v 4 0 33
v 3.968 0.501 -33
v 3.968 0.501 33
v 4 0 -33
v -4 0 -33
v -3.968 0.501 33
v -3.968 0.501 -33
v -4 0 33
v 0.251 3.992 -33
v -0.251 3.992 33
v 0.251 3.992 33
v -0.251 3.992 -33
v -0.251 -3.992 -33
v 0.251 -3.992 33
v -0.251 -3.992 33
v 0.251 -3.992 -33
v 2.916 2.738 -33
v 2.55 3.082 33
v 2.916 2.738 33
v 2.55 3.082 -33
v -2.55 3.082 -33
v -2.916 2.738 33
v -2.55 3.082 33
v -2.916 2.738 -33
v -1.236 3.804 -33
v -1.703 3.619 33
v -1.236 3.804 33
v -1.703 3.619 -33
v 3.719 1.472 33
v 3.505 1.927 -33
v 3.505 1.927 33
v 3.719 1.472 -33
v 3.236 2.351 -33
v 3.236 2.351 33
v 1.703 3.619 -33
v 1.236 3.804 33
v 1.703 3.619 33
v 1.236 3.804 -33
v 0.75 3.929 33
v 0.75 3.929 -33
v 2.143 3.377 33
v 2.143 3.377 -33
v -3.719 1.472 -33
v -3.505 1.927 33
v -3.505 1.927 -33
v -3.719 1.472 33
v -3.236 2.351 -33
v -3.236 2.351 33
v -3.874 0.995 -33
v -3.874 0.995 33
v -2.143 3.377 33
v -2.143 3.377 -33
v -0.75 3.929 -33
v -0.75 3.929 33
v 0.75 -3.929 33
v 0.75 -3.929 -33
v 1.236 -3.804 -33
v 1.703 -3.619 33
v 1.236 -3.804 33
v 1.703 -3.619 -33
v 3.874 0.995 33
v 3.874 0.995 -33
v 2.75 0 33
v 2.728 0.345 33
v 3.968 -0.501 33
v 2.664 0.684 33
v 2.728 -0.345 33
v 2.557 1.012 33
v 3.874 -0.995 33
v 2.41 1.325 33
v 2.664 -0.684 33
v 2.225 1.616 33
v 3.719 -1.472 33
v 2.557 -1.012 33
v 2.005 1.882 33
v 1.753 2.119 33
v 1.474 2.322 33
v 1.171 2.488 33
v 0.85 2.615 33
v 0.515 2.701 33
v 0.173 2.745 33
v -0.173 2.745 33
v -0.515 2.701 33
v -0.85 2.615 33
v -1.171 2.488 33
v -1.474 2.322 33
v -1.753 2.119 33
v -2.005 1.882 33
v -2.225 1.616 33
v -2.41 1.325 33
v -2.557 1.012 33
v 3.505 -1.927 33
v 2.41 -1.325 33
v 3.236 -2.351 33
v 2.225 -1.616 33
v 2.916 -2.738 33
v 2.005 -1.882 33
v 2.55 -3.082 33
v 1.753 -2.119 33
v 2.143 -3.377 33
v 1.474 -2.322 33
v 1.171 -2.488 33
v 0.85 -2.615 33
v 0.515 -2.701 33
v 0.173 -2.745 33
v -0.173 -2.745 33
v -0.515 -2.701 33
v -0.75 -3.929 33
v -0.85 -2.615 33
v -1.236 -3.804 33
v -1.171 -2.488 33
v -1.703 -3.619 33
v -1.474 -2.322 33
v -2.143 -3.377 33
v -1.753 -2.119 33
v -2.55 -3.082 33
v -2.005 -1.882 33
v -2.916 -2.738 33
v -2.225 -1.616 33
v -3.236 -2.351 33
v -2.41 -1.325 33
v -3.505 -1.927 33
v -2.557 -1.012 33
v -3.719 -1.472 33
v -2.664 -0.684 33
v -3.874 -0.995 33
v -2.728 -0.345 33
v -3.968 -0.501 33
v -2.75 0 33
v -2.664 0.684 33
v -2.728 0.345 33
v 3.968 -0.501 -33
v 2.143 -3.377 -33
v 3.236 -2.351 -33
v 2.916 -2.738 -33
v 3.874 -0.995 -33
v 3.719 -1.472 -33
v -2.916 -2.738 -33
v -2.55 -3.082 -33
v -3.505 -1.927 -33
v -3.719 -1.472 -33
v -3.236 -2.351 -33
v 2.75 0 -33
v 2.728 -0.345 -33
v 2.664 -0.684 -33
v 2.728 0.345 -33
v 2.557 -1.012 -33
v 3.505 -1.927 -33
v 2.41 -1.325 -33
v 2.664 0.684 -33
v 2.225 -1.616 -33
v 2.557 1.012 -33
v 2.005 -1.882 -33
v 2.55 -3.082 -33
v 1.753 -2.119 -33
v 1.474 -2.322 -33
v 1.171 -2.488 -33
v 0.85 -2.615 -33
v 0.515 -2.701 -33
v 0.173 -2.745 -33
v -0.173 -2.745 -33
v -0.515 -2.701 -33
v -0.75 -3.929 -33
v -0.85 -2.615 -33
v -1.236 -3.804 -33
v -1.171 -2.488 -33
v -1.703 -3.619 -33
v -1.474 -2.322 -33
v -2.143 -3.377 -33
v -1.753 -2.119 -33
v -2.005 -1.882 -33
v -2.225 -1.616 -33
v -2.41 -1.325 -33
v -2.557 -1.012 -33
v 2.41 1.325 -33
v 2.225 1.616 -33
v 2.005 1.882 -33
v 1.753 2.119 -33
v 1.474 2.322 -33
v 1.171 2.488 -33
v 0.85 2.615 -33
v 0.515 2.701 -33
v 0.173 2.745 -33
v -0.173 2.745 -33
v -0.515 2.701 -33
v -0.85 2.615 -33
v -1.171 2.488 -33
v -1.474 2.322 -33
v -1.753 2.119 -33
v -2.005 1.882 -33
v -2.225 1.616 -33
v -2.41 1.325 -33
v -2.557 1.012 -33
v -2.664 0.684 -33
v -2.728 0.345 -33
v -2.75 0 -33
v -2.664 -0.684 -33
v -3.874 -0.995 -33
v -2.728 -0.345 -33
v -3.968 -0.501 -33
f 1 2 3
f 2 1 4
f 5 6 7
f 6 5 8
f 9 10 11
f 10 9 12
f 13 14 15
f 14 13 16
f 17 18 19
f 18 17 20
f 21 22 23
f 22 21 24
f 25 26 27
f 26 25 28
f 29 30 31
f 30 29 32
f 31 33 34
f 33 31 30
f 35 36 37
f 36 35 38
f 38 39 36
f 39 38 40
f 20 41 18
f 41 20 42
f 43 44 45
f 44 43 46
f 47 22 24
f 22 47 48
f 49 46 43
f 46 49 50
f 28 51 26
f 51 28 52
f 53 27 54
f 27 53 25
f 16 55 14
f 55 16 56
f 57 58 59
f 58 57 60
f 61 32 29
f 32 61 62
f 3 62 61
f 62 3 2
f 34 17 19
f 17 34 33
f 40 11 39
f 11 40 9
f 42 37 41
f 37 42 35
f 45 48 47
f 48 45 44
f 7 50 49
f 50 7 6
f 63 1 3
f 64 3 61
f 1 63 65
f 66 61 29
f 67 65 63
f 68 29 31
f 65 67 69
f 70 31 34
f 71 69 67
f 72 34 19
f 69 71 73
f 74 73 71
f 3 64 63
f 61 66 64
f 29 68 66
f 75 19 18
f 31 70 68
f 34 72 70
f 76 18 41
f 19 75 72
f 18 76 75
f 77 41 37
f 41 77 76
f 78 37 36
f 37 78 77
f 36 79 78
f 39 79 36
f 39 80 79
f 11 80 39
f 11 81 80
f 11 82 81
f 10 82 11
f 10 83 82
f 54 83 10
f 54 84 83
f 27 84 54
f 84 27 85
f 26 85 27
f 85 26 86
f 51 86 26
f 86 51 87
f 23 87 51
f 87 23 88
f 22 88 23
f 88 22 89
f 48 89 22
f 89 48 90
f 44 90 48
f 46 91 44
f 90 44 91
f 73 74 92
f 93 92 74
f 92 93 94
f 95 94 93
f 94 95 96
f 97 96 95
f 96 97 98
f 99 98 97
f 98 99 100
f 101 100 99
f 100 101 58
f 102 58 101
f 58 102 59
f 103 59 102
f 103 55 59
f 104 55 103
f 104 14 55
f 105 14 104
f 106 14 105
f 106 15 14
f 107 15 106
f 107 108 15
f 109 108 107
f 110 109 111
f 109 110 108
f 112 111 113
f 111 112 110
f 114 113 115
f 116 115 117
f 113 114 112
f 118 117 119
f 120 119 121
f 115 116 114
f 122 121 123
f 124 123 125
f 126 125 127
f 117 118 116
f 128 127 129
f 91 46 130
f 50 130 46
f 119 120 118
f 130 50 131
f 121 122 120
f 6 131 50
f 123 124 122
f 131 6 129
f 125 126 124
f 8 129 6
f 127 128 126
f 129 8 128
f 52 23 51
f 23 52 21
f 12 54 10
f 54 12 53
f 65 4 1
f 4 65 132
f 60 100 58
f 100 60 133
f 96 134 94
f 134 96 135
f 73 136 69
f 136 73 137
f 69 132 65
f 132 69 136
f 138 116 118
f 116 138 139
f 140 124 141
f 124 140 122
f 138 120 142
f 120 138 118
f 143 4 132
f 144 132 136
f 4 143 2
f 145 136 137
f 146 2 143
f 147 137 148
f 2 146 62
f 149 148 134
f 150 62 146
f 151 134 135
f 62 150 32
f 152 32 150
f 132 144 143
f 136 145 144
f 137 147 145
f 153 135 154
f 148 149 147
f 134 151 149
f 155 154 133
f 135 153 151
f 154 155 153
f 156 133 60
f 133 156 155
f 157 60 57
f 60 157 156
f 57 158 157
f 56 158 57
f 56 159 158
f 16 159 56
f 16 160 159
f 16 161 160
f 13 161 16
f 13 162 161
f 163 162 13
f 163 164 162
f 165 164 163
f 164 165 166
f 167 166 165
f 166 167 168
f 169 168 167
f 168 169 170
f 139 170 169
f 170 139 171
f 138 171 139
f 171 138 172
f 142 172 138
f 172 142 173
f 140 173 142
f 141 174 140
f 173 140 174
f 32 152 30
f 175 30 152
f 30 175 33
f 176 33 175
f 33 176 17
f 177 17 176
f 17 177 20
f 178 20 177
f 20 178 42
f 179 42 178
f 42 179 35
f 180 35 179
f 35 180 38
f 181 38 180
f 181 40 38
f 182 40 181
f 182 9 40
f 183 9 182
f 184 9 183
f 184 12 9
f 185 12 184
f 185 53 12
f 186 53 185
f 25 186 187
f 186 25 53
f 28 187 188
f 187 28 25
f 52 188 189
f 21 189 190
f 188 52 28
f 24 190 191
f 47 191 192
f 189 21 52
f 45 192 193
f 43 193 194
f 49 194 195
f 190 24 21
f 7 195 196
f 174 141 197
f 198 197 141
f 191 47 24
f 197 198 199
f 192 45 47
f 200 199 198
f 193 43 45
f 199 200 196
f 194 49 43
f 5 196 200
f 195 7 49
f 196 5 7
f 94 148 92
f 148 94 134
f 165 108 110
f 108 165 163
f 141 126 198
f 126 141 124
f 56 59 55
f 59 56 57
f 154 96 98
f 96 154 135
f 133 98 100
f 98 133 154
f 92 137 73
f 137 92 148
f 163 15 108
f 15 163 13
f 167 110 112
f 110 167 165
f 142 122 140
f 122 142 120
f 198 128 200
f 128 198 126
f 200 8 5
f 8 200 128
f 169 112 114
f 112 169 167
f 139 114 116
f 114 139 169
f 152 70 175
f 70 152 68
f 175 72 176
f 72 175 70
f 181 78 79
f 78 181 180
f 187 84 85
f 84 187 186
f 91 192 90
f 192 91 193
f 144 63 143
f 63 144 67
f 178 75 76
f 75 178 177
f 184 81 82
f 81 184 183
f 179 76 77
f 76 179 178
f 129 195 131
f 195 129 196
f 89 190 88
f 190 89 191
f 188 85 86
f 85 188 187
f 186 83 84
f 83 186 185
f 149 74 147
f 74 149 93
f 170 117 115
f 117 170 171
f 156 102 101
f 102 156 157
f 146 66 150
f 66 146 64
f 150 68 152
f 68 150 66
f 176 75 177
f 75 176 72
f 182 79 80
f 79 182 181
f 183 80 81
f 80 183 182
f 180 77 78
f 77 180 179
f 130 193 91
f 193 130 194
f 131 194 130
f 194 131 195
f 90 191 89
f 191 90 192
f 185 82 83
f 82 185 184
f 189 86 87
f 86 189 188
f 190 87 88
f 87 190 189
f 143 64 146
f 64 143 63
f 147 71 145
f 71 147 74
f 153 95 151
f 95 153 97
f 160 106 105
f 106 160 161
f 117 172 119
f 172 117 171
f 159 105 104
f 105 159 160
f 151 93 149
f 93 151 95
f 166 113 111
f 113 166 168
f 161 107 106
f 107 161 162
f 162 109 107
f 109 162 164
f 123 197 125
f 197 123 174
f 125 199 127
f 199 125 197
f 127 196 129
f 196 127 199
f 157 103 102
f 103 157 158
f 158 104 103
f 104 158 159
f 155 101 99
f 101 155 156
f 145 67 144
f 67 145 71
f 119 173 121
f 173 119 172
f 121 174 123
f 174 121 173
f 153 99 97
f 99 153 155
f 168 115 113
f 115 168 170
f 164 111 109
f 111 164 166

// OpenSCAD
$fn = 50;


difference() {
	union() {
		translate(v = [0, 0, -33.0000000000]) {
			cylinder(h = 66, r = 4.0000000000);
		}
	}
	union() {
		translate(v = [0, 0, -100.0000000000]) {
			cylinder(h = 200, r = 2.7500000000);
		}
	}
}
